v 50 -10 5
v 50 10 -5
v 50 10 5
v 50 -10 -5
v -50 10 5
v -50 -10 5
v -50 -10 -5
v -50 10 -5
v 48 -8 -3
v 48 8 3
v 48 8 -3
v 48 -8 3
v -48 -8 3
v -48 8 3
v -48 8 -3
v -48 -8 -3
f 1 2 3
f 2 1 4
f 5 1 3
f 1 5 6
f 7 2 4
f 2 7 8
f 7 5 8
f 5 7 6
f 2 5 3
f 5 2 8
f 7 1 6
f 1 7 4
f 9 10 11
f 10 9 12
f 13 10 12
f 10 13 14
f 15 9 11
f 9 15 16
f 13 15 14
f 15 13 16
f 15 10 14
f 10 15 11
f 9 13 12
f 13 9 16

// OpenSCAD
// Parameters for the rectangular hollow bar
length = 100; // Length of the bar
width = 20;   // Outer width of the bar
height = 10;  // Outer height of the bar
wall_thickness = 2; // Thickness of the walls

// Function to create a rectangular hollow bar
module rectangular_hollow_bar() {
    difference() {
        // Outer rectangular prism
        cube([length, width, height], center = true);
        // Inner hollow space
        translate([0, 0, 0]) {
            cube([length - 2 * wall_thickness, width - 2 * wall_thickness, height - 2 * wall_thickness], center = true);
        }
    }
}

// Generate the rectangular hollow bar
rectangular_hollow_bar();
